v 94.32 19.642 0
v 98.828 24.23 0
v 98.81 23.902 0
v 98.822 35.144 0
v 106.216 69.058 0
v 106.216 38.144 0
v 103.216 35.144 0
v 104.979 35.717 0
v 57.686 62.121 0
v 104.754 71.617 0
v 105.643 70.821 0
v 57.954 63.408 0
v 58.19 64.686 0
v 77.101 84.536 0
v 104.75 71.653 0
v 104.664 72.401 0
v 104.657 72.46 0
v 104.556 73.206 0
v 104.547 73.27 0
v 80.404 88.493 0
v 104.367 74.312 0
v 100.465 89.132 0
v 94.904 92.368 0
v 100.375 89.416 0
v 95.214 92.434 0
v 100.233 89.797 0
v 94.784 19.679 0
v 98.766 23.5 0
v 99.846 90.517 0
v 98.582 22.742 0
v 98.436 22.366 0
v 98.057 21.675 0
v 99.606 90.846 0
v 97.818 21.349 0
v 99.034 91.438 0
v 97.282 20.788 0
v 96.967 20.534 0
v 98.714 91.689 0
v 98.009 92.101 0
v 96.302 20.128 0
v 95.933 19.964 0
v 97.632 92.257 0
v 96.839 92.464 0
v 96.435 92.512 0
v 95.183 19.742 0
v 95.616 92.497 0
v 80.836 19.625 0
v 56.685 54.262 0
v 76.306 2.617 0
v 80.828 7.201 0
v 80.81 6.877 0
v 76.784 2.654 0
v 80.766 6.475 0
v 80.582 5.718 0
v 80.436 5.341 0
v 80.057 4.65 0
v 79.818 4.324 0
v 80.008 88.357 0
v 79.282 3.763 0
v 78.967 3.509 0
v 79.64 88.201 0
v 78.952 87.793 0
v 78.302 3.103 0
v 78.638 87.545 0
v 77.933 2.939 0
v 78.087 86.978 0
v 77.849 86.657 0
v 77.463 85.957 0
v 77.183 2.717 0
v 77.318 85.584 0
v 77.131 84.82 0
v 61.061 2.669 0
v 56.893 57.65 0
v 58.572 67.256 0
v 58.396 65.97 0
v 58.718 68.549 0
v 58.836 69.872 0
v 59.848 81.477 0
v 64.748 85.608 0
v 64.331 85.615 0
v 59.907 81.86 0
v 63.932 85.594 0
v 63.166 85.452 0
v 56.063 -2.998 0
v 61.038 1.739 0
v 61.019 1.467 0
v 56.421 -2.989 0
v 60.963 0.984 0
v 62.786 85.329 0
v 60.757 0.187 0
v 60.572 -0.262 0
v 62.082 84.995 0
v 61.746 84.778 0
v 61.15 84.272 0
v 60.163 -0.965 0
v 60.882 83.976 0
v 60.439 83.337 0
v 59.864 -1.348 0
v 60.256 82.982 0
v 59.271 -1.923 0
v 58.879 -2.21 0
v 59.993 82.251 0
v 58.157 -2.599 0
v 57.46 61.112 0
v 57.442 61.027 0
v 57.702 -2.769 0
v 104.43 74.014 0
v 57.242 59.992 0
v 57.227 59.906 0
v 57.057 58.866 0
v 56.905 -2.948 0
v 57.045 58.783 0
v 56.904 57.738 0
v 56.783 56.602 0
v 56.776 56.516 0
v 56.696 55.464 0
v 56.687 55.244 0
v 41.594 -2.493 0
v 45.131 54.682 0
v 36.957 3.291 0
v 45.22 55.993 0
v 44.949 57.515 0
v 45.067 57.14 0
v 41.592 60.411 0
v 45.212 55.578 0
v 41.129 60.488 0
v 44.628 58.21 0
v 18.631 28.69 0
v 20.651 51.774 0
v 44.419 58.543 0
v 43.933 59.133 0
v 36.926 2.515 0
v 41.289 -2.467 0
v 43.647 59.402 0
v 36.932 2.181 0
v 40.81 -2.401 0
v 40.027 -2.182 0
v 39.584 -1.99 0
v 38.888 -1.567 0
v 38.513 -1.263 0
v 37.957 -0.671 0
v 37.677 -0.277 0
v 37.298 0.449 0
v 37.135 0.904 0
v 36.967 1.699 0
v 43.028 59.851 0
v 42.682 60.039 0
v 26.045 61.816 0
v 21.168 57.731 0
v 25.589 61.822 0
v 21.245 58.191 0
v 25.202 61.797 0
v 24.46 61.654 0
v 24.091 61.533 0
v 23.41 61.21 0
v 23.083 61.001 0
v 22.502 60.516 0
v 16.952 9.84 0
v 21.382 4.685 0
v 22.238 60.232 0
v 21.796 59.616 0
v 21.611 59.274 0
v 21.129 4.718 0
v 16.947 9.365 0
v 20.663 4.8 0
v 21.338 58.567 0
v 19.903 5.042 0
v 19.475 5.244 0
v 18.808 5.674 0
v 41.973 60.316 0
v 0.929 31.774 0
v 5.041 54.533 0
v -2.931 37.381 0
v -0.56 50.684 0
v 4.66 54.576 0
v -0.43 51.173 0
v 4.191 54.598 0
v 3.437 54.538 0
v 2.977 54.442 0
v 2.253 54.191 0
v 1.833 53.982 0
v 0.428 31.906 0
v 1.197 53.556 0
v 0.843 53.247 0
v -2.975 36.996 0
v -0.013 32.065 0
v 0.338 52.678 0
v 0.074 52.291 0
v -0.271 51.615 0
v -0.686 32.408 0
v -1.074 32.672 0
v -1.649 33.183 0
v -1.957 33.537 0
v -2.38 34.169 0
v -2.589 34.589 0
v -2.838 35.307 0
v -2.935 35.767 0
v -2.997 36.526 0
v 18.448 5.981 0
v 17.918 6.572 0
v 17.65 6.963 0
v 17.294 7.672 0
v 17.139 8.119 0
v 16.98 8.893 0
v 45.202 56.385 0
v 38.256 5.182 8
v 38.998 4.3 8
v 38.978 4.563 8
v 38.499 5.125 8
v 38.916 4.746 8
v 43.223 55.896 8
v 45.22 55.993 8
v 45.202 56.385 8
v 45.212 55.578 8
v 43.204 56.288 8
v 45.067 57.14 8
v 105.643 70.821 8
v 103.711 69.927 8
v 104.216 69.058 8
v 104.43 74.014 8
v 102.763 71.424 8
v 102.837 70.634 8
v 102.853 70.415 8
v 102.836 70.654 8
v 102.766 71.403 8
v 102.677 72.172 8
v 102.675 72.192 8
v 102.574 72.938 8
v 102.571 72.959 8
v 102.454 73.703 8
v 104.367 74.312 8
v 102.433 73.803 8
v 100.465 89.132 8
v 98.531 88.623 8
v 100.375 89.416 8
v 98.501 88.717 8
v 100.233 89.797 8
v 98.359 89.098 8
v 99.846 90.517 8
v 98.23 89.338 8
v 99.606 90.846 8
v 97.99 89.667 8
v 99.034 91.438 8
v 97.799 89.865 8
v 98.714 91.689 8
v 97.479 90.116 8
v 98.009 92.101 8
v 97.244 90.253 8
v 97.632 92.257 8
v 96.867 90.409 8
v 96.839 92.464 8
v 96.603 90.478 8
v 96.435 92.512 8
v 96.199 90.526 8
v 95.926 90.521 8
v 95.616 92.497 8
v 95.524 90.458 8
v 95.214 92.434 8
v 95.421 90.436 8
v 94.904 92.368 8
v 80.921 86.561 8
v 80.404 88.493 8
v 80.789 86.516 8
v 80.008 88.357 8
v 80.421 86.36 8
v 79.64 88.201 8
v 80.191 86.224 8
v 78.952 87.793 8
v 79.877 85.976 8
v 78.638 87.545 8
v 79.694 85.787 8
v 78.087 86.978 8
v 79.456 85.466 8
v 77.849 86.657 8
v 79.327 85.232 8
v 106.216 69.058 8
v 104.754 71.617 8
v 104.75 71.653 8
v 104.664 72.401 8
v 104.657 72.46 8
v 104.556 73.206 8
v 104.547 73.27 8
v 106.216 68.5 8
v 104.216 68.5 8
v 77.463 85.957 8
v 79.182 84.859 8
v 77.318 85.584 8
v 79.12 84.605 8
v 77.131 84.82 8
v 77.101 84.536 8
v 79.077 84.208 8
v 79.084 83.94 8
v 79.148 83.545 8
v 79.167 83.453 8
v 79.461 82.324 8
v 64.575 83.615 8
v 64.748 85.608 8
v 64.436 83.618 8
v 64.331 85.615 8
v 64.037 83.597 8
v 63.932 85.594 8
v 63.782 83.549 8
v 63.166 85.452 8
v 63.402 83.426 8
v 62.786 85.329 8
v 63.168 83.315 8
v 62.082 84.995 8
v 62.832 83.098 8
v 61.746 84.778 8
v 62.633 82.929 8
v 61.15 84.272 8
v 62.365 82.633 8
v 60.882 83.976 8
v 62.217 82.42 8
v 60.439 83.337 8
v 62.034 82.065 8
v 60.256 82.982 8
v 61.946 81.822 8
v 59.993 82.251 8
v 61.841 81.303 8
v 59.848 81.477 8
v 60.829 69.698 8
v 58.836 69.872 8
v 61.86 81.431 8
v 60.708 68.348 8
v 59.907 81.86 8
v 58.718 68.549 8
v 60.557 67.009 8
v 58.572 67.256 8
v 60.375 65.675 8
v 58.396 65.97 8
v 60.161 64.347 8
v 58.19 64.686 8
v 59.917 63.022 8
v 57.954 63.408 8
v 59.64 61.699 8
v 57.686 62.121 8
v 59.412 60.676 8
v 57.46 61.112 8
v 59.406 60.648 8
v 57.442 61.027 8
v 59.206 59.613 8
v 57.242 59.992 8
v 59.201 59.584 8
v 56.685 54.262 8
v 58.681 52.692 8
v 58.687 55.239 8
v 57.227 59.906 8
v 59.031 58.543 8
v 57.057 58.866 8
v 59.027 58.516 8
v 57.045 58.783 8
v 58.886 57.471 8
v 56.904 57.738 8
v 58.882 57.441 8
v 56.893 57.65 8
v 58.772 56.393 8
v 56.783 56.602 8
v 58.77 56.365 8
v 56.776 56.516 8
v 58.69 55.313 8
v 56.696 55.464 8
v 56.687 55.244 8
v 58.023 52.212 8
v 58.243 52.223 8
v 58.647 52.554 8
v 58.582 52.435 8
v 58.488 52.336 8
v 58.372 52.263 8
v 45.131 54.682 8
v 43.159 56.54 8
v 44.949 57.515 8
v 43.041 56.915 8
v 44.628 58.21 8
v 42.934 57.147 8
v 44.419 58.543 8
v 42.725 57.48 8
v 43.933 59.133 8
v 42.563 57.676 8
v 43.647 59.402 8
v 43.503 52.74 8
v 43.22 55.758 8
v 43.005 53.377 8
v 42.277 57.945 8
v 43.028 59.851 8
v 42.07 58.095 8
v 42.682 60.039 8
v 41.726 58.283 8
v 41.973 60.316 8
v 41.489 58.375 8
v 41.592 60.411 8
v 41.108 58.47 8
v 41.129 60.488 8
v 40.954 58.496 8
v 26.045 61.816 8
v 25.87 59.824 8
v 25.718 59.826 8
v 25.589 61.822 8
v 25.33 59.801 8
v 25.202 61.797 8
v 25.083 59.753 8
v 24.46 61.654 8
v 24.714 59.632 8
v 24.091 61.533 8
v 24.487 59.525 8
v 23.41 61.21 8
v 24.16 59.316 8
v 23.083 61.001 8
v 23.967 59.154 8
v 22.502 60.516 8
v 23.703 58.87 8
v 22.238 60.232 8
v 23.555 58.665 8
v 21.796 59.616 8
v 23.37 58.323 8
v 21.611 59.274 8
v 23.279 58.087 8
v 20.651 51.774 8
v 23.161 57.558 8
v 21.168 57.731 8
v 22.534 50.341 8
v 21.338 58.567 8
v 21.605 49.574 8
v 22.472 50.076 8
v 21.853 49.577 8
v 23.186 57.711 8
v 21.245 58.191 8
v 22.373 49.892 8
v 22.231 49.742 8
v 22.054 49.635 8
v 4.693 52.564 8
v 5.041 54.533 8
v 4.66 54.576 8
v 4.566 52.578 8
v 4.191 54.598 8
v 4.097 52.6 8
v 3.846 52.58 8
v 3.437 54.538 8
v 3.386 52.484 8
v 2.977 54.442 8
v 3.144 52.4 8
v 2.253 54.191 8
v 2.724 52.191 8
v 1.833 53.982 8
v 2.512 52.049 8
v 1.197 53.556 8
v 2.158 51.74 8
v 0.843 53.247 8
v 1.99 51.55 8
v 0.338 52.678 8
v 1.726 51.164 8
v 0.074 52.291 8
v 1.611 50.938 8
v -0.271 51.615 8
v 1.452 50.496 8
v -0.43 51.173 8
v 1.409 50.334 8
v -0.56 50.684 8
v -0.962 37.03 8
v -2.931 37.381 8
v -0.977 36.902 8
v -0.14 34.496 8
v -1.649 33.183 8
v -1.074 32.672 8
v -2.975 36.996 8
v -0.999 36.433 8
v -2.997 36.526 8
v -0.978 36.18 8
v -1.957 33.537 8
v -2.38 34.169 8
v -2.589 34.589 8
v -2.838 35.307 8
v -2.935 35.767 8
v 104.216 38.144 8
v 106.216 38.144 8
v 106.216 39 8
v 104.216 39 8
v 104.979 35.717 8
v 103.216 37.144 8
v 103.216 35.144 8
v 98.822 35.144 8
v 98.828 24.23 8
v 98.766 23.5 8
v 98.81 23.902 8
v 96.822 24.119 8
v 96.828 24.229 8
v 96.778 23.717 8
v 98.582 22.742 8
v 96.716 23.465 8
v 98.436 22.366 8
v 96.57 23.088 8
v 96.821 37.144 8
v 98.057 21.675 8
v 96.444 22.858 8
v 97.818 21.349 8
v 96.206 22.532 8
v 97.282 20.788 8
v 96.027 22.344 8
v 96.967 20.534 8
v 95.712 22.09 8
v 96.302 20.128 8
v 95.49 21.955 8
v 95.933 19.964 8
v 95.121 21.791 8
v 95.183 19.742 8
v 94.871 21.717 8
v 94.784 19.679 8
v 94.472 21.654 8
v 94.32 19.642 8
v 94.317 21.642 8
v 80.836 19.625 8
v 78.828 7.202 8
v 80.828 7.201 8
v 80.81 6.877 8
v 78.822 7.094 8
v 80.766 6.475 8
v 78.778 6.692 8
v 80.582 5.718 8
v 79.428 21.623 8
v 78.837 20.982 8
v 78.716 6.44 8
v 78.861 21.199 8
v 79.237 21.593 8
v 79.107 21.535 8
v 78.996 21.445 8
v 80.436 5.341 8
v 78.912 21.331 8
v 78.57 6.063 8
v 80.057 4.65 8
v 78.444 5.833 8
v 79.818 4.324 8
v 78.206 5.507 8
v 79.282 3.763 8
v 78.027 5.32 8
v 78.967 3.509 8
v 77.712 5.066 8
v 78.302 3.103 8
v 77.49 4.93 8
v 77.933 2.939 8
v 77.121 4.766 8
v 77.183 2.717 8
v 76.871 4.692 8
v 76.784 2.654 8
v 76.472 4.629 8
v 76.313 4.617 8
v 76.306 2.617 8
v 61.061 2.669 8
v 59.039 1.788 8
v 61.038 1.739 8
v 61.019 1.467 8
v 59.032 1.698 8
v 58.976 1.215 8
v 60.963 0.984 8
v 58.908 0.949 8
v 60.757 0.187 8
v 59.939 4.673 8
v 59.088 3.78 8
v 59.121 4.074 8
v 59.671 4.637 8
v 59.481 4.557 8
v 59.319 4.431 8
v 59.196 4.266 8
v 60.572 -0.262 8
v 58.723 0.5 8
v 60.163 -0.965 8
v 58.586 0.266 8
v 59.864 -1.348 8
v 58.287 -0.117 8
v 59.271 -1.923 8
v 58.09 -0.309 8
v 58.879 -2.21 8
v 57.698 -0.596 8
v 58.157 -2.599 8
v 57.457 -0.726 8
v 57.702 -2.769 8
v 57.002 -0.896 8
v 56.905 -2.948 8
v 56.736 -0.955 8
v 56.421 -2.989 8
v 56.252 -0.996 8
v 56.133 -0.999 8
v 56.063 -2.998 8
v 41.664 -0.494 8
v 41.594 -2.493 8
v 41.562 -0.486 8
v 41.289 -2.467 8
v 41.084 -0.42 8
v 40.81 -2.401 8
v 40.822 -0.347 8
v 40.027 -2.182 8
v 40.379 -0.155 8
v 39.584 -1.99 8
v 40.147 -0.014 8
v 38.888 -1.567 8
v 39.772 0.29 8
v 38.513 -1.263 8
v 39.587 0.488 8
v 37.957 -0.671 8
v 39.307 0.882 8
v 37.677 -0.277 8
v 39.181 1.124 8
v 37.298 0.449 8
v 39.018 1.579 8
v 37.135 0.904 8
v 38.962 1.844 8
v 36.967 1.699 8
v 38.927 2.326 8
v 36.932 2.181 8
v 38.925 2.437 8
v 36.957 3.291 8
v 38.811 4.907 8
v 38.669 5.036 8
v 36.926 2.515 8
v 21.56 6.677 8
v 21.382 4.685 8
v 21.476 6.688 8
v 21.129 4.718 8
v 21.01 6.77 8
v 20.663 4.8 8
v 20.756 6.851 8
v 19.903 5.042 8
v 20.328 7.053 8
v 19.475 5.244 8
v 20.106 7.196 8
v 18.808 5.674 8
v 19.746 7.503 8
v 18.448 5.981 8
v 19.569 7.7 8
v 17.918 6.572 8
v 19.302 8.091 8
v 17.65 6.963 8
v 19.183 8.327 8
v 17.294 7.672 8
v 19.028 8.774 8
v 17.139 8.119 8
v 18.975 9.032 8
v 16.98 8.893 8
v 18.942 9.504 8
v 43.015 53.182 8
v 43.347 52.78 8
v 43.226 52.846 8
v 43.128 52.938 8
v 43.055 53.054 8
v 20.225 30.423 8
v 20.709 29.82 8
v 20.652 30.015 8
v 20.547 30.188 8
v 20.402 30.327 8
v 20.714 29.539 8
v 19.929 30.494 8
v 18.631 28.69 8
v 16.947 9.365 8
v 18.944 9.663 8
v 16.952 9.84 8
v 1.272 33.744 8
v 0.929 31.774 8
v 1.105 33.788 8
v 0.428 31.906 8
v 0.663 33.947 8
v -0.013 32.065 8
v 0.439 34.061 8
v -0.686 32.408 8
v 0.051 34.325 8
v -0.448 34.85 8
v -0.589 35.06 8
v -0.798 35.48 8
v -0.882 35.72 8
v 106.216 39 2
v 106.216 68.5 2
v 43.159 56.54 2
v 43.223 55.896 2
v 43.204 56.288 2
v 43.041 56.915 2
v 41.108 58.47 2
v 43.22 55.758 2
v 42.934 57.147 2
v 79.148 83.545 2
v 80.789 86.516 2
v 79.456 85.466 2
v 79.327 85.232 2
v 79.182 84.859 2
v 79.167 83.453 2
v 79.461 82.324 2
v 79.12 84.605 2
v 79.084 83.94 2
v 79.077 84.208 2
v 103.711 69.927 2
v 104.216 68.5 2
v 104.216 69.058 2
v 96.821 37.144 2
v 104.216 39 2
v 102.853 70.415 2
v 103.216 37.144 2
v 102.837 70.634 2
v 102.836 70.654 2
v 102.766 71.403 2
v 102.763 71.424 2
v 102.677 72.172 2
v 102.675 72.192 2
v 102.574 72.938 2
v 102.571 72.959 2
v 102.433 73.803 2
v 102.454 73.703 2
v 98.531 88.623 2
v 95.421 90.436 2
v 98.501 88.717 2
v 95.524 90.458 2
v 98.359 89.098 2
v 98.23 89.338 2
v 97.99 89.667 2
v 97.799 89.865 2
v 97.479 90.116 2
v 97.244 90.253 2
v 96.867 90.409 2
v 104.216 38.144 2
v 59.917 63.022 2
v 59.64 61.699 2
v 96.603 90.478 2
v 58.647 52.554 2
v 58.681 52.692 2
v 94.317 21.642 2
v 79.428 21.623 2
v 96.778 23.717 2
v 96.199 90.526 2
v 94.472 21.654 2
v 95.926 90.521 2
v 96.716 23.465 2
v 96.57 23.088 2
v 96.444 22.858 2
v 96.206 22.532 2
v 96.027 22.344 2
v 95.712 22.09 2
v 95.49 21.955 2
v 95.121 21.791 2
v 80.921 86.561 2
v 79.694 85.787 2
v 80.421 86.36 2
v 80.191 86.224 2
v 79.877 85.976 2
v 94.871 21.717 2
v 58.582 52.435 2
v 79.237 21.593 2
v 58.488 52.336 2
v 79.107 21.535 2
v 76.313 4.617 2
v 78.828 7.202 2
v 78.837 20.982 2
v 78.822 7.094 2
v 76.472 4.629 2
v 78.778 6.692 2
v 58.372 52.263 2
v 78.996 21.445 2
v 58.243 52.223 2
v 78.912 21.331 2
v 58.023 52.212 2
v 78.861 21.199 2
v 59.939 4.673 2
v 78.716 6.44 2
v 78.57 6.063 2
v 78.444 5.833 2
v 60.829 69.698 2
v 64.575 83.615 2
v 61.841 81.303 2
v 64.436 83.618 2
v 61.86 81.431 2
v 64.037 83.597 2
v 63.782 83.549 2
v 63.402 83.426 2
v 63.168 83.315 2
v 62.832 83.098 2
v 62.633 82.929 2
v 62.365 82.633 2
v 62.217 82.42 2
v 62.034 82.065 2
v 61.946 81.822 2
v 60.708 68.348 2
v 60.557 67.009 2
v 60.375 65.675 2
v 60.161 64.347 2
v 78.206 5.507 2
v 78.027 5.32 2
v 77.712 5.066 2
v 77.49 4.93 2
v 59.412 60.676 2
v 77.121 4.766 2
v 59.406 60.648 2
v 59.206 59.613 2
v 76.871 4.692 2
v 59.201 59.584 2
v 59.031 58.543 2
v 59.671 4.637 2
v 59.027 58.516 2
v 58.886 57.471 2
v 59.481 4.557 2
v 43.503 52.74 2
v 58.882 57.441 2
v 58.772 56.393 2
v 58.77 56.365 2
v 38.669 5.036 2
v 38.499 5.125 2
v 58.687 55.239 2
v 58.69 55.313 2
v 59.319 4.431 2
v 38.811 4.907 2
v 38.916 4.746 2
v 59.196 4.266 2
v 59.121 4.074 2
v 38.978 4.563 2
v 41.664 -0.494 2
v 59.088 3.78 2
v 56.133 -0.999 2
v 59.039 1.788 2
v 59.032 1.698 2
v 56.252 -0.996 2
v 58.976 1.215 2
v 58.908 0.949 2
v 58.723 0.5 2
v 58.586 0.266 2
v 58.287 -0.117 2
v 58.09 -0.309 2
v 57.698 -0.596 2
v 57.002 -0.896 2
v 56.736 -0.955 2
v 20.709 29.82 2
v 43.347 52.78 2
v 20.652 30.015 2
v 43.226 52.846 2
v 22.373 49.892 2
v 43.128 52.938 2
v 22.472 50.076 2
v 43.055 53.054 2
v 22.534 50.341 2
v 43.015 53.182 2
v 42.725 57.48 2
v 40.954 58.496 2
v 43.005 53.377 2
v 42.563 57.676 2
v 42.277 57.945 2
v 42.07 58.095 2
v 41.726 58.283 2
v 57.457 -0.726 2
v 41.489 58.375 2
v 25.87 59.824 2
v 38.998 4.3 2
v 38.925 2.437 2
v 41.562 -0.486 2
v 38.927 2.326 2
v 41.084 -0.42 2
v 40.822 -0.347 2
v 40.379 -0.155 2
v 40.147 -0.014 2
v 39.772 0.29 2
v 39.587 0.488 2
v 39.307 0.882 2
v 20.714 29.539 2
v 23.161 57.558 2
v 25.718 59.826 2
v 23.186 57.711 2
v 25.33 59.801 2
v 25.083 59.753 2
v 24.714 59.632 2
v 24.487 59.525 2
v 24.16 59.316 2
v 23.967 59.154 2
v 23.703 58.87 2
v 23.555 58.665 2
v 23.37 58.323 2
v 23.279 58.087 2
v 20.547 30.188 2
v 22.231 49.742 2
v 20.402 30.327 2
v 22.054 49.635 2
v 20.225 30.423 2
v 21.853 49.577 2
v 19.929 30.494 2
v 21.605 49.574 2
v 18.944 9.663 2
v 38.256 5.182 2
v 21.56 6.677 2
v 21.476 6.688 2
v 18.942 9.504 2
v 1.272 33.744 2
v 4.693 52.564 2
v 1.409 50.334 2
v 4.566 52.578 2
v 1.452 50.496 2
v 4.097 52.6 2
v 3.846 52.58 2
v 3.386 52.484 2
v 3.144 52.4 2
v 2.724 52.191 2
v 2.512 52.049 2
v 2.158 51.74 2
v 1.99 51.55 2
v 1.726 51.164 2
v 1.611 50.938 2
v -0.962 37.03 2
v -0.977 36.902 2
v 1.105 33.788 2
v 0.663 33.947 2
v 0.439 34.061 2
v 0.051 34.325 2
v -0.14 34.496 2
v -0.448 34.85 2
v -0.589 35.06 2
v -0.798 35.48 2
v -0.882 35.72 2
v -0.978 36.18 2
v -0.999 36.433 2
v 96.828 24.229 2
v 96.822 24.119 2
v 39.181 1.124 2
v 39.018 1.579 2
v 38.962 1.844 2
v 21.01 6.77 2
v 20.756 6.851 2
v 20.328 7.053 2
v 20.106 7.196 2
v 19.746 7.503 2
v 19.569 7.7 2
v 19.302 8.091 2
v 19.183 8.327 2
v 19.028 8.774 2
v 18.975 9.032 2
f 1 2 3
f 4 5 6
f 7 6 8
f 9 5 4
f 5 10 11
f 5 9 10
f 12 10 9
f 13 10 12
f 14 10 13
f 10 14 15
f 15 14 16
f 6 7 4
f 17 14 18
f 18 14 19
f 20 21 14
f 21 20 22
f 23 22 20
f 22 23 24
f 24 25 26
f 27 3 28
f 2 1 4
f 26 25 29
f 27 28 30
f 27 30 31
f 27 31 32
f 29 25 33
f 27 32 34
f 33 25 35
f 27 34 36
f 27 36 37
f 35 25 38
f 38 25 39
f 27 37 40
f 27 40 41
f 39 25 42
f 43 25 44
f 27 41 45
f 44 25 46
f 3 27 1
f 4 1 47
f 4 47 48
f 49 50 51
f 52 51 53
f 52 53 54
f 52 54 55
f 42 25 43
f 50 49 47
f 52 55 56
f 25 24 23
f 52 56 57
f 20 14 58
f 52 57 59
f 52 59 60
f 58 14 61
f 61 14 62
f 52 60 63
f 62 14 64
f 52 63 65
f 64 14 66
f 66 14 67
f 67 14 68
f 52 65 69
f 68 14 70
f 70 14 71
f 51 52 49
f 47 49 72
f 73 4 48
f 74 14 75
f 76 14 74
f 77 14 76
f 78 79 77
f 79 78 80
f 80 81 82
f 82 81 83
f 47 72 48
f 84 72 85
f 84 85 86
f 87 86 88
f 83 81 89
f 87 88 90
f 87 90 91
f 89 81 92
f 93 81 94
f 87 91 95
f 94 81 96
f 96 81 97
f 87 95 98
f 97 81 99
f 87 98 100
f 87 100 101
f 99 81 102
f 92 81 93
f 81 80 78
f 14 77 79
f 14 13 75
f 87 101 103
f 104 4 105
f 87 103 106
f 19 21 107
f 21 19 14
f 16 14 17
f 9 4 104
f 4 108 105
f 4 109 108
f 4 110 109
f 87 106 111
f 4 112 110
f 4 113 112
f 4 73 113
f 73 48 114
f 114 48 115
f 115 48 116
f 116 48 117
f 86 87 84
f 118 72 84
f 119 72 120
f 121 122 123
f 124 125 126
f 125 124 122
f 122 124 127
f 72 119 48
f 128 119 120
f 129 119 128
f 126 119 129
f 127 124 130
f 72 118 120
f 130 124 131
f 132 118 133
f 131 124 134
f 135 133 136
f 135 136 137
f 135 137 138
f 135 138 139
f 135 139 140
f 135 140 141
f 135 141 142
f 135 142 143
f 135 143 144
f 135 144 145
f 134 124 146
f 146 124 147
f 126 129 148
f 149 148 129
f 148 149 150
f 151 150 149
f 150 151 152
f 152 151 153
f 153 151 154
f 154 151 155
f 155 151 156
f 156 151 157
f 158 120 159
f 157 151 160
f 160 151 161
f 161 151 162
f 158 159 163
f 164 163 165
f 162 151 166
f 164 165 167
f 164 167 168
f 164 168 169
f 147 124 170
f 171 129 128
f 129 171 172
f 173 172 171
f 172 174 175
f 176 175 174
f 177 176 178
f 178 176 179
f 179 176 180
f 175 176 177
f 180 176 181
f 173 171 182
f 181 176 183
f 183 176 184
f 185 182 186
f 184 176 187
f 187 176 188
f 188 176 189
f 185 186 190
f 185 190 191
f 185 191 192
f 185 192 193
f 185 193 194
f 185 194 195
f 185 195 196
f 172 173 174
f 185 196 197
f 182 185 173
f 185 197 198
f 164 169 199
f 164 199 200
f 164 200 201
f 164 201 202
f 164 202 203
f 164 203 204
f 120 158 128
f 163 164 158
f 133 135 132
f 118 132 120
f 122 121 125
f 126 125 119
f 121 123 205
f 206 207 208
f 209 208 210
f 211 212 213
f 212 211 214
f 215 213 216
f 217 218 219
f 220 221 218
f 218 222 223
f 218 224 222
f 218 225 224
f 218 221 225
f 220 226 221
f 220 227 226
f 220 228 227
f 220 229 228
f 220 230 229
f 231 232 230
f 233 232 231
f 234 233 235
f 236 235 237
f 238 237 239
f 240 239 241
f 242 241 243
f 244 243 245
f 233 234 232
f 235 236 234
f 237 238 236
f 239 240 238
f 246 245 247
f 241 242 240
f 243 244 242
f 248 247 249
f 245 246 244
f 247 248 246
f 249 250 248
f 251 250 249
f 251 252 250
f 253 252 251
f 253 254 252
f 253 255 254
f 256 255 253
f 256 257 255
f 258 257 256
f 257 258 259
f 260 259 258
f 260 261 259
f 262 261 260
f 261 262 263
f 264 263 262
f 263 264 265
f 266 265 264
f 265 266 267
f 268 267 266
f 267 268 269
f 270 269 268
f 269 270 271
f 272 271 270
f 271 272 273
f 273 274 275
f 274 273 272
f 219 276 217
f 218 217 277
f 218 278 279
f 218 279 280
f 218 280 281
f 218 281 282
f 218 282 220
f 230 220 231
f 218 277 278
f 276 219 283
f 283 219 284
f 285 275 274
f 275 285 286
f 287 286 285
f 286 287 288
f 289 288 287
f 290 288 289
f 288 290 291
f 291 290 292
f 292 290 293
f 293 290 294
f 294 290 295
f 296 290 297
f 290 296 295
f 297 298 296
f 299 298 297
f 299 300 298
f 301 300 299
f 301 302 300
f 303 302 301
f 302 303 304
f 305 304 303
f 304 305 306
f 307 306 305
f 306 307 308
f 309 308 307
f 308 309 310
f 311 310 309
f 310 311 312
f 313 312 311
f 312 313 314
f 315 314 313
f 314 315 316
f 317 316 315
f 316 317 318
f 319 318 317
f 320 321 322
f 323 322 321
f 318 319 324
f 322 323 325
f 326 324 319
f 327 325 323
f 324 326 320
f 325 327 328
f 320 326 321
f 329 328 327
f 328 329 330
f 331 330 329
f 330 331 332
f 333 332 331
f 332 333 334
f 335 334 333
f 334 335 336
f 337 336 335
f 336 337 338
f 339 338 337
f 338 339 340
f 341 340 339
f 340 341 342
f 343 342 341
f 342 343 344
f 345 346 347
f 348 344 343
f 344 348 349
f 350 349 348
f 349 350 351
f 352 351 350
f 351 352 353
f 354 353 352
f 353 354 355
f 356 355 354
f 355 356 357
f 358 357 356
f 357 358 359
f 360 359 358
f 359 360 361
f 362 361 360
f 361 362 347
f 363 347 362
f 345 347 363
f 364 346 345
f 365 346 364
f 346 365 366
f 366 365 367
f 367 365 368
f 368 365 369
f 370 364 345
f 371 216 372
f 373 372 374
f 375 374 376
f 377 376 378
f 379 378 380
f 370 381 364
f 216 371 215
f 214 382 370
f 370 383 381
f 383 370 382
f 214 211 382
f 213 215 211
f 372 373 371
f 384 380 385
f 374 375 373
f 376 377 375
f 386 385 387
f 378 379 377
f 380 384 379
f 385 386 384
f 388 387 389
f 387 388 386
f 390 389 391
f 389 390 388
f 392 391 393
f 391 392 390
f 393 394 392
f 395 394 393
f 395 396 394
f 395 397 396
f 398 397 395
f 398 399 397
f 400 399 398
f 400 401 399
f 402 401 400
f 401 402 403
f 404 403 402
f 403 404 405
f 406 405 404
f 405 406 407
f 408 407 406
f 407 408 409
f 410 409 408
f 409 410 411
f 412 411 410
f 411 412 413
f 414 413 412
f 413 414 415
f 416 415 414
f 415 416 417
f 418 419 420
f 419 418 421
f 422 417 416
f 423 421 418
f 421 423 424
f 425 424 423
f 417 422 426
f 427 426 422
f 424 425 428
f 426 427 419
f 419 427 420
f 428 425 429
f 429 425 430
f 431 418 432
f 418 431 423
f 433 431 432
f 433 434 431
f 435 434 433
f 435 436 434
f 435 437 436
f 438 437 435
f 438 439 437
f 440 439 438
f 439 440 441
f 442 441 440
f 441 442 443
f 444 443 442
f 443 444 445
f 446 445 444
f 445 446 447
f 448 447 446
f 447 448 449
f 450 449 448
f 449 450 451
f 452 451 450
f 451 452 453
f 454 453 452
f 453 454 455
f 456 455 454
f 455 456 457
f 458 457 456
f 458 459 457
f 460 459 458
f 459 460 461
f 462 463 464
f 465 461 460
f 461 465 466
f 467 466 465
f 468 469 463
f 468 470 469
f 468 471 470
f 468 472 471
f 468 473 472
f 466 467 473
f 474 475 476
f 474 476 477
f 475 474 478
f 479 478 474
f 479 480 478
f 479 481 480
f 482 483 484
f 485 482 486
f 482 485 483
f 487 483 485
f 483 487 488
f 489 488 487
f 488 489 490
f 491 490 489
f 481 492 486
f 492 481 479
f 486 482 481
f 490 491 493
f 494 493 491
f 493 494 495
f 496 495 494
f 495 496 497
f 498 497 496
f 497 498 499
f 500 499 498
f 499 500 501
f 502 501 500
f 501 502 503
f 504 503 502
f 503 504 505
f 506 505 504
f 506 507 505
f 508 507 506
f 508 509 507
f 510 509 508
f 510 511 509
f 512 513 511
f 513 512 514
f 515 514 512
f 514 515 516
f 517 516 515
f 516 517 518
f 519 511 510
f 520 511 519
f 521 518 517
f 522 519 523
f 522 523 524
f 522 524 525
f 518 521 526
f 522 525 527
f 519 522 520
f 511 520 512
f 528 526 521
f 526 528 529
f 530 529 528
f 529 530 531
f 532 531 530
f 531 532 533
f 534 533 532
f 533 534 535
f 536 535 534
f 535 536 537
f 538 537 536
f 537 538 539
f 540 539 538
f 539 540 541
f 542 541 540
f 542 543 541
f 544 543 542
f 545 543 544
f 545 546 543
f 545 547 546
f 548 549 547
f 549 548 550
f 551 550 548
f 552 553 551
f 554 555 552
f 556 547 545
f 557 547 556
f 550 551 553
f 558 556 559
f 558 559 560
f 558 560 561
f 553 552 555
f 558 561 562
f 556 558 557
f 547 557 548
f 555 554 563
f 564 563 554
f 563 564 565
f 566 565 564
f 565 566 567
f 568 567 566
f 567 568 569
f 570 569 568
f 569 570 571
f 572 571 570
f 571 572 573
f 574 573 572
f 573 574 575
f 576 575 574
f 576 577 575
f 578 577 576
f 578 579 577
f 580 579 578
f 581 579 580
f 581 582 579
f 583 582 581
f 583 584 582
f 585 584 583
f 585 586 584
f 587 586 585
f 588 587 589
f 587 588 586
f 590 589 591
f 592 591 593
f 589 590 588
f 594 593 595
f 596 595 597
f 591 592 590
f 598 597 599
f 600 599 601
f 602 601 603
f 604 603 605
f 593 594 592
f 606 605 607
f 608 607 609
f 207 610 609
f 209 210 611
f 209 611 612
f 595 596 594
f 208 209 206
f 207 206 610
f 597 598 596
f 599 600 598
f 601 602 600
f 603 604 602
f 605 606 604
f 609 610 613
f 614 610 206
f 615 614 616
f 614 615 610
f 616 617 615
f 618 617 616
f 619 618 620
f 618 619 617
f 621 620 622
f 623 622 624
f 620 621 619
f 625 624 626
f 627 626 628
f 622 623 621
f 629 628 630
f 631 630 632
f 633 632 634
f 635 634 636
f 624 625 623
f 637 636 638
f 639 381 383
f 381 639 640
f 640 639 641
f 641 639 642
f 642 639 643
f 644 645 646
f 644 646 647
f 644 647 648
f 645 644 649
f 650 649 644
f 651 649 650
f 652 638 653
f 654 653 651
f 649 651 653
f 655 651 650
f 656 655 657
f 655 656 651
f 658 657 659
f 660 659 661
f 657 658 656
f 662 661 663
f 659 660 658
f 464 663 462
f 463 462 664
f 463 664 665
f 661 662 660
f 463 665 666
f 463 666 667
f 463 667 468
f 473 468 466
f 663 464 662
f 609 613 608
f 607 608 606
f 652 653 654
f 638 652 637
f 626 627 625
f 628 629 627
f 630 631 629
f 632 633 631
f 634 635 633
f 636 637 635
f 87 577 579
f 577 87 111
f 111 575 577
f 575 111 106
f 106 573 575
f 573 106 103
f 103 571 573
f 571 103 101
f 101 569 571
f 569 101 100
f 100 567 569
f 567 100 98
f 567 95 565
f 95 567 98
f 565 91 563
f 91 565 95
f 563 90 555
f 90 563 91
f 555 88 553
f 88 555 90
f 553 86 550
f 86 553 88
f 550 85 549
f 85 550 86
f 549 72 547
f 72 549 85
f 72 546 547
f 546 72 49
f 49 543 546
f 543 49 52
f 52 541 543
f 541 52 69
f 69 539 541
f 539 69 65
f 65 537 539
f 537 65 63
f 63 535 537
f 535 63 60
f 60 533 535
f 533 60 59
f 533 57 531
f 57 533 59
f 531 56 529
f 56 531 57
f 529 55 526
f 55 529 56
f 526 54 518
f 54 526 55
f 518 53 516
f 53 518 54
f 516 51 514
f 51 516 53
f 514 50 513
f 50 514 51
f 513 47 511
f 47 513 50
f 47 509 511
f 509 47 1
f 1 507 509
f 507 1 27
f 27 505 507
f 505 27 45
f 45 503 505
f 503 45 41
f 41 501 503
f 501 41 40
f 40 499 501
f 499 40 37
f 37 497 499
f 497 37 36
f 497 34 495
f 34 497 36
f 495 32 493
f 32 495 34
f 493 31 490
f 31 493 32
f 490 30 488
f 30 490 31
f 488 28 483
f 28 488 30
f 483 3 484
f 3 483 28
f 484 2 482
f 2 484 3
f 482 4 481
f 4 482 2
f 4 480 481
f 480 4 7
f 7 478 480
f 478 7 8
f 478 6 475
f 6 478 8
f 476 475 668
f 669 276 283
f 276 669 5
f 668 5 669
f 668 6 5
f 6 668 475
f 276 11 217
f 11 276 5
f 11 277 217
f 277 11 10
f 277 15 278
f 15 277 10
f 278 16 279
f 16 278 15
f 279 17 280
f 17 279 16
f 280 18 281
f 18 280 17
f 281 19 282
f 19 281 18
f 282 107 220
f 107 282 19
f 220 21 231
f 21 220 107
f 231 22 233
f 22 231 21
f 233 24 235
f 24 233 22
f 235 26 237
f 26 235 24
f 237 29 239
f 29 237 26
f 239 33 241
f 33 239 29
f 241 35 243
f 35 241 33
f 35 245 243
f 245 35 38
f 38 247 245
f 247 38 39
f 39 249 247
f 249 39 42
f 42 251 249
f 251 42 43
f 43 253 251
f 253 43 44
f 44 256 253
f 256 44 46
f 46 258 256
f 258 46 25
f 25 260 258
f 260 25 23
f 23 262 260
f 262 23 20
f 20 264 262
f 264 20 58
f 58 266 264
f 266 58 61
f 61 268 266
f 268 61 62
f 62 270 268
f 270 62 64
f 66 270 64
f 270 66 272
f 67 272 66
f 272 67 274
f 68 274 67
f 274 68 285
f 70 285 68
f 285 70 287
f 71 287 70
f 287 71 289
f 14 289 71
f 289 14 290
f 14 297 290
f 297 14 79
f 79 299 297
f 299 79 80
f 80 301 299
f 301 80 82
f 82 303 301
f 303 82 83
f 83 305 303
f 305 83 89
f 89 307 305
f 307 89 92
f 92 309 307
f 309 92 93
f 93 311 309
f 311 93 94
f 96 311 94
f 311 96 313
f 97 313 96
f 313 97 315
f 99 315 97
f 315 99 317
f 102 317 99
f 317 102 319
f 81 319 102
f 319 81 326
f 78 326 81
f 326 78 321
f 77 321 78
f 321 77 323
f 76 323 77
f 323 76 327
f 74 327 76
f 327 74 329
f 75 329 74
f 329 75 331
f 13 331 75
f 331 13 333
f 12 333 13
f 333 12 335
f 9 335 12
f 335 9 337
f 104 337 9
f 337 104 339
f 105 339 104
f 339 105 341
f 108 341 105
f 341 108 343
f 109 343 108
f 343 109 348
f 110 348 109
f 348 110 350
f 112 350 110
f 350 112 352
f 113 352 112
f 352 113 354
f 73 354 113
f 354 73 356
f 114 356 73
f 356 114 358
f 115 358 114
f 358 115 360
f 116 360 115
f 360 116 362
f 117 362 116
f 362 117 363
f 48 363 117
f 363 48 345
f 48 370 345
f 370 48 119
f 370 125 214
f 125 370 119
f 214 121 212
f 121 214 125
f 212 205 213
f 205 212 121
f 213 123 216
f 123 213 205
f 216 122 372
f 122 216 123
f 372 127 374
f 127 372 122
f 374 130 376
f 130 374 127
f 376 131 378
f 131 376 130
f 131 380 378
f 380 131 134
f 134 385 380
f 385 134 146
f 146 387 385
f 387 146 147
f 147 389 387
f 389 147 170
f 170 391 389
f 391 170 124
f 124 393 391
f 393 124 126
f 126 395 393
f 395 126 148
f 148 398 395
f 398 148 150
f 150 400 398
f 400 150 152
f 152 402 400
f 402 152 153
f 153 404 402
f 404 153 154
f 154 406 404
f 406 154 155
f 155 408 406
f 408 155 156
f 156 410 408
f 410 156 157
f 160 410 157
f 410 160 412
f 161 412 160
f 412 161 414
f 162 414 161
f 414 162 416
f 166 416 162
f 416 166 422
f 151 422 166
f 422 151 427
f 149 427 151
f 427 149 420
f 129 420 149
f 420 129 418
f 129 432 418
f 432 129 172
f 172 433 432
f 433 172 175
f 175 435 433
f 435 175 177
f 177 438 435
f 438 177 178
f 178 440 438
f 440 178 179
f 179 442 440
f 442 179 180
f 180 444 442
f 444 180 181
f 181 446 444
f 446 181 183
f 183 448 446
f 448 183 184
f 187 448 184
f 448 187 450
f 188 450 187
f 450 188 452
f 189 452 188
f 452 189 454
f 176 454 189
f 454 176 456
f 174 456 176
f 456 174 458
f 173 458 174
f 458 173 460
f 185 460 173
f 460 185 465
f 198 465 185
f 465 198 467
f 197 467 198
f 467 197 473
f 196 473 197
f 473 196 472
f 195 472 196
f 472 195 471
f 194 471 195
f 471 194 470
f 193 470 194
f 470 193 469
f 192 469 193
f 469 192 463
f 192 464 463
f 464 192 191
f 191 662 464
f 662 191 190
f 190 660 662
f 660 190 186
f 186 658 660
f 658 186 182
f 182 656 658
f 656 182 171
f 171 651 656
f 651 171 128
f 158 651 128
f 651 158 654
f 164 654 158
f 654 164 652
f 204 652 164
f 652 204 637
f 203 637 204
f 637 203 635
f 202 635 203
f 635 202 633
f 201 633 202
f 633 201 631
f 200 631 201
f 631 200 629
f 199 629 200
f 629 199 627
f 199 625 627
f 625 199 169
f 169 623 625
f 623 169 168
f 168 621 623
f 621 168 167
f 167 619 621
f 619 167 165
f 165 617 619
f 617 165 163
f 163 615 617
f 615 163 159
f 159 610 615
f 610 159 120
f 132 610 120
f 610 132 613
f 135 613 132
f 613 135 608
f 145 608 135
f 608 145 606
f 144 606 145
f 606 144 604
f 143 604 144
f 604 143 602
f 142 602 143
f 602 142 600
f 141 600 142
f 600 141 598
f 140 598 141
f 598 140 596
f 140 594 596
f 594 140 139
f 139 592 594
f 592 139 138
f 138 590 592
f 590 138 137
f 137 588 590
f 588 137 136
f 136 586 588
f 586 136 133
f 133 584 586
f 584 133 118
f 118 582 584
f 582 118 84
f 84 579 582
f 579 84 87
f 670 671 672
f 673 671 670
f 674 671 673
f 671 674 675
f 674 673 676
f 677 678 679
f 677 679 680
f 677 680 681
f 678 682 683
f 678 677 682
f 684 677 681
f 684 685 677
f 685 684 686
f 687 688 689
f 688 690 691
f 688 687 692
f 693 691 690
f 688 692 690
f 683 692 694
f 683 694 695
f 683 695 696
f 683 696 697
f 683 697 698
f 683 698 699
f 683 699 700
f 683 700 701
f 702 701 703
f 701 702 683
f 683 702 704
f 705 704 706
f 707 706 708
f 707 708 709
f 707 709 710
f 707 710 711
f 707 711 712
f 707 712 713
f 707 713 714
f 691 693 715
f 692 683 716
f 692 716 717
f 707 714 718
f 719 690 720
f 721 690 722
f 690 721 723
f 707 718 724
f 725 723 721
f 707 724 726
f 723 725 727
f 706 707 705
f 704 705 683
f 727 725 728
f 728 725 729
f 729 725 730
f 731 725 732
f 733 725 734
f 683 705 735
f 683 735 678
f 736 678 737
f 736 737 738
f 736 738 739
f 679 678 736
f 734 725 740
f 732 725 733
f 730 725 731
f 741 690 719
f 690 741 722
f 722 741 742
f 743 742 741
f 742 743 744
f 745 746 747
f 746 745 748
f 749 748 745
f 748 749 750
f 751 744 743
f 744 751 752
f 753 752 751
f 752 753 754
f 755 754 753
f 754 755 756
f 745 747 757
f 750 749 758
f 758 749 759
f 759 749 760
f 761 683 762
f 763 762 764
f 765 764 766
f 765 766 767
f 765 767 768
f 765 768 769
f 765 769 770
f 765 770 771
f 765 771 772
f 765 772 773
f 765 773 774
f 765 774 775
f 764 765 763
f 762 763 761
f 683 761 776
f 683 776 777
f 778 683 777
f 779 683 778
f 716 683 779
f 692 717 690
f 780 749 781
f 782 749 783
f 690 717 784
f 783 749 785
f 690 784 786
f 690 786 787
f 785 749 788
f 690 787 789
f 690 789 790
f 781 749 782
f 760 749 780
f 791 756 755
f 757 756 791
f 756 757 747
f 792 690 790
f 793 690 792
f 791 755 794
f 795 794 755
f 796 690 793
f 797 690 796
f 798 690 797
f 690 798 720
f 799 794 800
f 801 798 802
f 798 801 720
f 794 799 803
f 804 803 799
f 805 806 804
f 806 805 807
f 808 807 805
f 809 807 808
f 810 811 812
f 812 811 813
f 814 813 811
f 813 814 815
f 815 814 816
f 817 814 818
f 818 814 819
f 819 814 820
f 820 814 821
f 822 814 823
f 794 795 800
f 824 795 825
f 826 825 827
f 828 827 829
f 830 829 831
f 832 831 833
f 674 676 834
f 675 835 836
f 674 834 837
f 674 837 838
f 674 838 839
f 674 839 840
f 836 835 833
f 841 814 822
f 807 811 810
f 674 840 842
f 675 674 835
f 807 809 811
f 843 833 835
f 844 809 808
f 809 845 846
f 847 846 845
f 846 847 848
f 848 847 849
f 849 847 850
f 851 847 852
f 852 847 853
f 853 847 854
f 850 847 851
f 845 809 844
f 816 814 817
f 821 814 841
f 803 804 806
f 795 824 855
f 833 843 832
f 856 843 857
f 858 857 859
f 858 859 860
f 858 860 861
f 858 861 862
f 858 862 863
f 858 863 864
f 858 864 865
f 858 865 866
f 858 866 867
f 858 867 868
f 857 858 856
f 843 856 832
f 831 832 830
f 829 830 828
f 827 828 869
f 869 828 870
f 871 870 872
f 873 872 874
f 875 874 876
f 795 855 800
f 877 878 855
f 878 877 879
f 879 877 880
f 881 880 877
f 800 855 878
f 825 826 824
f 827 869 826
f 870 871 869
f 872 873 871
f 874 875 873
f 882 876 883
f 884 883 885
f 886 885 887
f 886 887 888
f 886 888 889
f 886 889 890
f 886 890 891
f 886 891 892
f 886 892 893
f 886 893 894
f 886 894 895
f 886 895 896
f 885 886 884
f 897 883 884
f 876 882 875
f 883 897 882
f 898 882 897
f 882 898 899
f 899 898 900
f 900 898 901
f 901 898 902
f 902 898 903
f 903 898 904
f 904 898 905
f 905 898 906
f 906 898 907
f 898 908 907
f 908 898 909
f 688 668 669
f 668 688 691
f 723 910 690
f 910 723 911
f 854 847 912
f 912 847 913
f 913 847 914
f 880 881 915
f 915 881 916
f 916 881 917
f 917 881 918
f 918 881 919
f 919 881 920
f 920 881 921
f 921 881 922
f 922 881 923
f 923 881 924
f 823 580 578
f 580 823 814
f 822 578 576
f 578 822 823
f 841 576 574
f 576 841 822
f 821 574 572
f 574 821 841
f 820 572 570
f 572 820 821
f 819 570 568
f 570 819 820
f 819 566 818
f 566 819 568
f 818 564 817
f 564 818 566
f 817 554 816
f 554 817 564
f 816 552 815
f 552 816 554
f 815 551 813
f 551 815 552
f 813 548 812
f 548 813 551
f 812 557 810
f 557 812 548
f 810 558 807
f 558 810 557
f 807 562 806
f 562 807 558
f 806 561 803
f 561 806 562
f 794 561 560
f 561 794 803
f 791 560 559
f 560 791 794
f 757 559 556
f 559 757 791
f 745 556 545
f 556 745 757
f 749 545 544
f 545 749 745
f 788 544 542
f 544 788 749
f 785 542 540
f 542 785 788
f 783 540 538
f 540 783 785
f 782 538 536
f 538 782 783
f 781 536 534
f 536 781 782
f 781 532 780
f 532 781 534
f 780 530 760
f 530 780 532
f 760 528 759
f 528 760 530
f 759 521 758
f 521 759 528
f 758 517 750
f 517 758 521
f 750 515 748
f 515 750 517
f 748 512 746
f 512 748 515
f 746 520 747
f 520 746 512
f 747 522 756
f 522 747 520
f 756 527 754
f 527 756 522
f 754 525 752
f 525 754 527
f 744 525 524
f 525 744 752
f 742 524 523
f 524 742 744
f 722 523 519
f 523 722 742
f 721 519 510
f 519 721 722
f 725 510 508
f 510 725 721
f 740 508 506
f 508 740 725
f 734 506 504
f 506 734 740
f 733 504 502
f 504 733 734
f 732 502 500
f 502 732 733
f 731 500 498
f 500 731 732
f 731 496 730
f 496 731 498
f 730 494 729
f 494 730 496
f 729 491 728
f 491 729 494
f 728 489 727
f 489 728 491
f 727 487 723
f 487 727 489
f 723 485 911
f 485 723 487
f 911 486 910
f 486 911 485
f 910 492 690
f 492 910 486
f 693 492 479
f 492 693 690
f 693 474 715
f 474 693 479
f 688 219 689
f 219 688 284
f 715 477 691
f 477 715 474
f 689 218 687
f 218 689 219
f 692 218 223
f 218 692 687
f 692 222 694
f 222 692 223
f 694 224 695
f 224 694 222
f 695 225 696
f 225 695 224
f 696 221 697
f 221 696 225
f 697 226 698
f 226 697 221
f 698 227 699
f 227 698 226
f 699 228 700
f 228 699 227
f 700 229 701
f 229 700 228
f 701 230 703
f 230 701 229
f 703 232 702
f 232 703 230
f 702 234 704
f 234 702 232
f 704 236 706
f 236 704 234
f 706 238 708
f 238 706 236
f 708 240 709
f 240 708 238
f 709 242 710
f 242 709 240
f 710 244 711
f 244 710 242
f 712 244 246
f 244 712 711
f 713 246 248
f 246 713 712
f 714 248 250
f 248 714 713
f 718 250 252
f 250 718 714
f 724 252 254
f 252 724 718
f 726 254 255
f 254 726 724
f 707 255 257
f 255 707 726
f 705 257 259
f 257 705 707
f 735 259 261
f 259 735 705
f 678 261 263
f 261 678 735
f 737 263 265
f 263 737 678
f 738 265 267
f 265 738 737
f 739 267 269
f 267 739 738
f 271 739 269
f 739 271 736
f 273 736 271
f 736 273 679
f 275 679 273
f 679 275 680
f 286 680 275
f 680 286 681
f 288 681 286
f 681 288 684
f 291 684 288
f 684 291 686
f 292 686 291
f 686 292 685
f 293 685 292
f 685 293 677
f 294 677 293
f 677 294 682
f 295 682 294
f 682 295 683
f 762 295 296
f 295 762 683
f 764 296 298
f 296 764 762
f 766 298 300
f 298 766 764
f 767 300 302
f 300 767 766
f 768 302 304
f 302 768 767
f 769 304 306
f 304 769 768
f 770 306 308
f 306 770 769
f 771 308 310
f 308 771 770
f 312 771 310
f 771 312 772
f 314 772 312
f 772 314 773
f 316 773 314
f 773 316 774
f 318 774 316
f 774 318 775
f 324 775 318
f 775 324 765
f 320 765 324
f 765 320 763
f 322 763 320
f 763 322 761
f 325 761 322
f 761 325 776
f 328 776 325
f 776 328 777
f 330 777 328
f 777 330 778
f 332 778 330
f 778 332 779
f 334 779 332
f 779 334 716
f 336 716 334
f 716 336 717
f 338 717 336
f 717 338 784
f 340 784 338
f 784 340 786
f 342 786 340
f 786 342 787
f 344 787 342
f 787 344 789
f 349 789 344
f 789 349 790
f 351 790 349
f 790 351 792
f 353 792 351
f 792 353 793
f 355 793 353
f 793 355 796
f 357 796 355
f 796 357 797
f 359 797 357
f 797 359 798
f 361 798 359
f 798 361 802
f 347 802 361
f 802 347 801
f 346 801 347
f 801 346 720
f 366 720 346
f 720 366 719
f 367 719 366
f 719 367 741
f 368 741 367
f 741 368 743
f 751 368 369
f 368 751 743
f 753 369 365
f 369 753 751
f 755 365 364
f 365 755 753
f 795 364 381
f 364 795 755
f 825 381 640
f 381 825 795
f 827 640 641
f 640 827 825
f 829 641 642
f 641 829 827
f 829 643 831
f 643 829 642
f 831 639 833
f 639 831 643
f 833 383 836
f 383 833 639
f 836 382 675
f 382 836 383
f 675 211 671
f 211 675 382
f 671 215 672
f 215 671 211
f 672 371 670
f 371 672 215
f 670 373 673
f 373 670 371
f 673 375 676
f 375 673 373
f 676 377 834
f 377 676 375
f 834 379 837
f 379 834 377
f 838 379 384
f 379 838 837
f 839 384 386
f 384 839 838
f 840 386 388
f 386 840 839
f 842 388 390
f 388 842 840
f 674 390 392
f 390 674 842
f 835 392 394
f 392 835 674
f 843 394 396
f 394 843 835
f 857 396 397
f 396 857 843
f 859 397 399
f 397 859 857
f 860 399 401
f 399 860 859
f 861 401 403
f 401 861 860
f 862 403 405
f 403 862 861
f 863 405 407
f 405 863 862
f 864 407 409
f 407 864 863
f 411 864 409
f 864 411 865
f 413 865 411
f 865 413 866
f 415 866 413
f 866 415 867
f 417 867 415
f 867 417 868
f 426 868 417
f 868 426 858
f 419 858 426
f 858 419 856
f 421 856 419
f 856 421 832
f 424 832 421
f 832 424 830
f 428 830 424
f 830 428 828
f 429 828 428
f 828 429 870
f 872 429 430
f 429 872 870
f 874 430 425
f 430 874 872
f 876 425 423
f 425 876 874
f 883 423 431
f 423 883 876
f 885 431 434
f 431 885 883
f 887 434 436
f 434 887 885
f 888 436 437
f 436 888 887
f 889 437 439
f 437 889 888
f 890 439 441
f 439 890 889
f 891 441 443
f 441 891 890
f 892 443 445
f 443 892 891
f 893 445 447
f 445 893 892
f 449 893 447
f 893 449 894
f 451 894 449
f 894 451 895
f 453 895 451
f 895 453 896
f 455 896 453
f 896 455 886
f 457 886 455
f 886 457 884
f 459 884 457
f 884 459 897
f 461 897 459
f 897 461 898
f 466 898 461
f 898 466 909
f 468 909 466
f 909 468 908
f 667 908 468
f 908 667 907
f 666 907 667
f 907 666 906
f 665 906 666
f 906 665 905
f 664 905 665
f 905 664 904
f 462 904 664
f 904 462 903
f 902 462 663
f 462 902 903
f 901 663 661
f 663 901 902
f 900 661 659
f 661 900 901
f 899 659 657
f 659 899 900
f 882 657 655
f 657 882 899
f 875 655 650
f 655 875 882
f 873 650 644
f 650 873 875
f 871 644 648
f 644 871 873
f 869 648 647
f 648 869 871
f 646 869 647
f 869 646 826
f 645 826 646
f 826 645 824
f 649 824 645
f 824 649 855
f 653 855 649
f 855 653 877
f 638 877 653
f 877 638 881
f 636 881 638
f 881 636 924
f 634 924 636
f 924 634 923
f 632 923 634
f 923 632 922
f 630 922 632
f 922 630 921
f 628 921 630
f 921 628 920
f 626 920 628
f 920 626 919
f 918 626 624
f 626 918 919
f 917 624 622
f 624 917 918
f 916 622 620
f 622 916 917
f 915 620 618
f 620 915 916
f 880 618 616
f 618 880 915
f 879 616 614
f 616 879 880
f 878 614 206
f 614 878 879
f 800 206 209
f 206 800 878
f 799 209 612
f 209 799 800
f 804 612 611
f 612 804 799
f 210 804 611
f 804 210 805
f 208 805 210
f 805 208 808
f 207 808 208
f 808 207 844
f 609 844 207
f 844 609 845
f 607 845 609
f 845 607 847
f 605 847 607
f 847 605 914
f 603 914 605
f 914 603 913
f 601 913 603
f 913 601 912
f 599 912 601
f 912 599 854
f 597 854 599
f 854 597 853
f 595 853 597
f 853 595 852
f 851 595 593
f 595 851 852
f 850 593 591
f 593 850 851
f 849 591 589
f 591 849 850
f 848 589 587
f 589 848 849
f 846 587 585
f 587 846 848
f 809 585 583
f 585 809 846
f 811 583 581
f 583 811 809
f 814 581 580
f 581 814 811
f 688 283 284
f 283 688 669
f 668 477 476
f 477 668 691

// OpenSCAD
// Smallcat Split Keyboard Case - Right Half
// Tray-style case design
// PCB outline extracted from KiCad (mirrored from left)

// Parameters
wall_thickness = 2;        // Wall thickness in mm
case_depth = 8;            // Total case depth in mm
pcb_thickness = 1.6;       // PCB thickness in mm
pcb_clearance = 1;         // Clearance around PCB in mm
bottom_thickness = 2;      // Bottom plate thickness in mm

// Connector edge cutout parameters (clears entire edge for USB + TRRS)
connector_cutout_start = 39;   // Y start position
connector_cutout_end = 68.5;     // Y end position

// PCB outline points (right half - mirrored from left)
pcb_outline = [
    [0.022, 36.855],
    [0.000, 36.386],
    [0.097, 35.926],
    [0.306, 35.506],
    [0.614, 35.152],
    [1.002, 34.888],
    [1.444, 34.729],
    [20.132, 31.474],
    [20.586, 31.365],
    [20.997, 31.142],
    [21.334, 30.819],
    [21.576, 30.420],
    [21.706, 29.971],
    [21.715, 29.504],
    [19.940, 9.574],
    [19.973, 9.102],
    [20.128, 8.655],
    [20.395, 8.264],
    [20.755, 7.957],
    [21.183, 7.755],
    [21.649, 7.673],
    [38.416, 6.172],
    [38.851, 6.070],
    [39.247, 5.862],
    [39.578, 5.561],
    [39.823, 5.187],
    [39.966, 4.763],
    [39.999, 4.317],
    [39.924, 2.398],
    [39.959, 1.916],
    [40.122, 1.461],
    [40.402, 1.067],
    [40.777, 0.763],
    [41.220, 0.571],
    [41.699, 0.505],
    [56.168, 0.000],
    [56.652, 0.041],
    [57.107, 0.211],
    [57.499, 0.498],
    [57.798, 0.881],
    [57.983, 1.330],
    [58.039, 1.813],
    [58.089, 3.848],
    [58.142, 4.318],
    [58.315, 4.757],
    [58.598, 5.136],
    [58.970, 5.427],
    [59.406, 5.610],
    [59.874, 5.673],
    [76.316, 5.617],
    [76.715, 5.680],
    [77.084, 5.844],
    [77.399, 6.098],
    [77.638, 6.424],
    [77.784, 6.801],
    [77.828, 7.203],
    [77.837, 21.037],
    [77.881, 21.439],
    [78.028, 21.816],
    [78.266, 22.142],
    [78.581, 22.395],
    [78.950, 22.560],
    [79.349, 22.623],
    [94.316, 22.642],
    [94.715, 22.705],
    [95.084, 22.869],
    [95.399, 23.123],
    [95.638, 23.449],
    [95.784, 23.826],
    [95.828, 24.228],
    [95.820, 38.144],
    [103.216, 38.144],
    [103.216, 69.058],
    [101.895, 69.810],
    [101.840, 70.561],
    [101.770, 71.310],
    [101.684, 72.058],
    [101.583, 72.804],
    [101.466, 73.548],
    [97.564, 88.368],
    [97.422, 88.749],
    [97.182, 89.078],
    [96.862, 89.329],
    [96.485, 89.485],
    [96.081, 89.533],
    [95.679, 89.470],
    [81.179, 85.595],
    [80.811, 85.439],
    [80.497, 85.191],
    [80.259, 84.870],
    [80.114, 84.497],
    [80.071, 84.100],
    [80.135, 83.705],
    [80.785, 81.205],
    [64.489, 82.619],
    [64.090, 82.598],
    [63.710, 82.475],
    [63.374, 82.258],
    [63.106, 81.962],
    [62.923, 81.607],
    [62.837, 81.216],
    [61.825, 69.611],
    [61.703, 68.247],
    [61.549, 66.885],
    [61.364, 65.528],
    [61.146, 64.176],
    [60.898, 62.829],
    [60.618, 61.488],
    [60.388, 60.458],
    [60.188, 59.423],
    [60.018, 58.382],
    [59.877, 57.337],
    [59.767, 56.289],
    [59.687, 55.237],
    [59.681, 52.568],
    [59.586, 52.187],
    [59.397, 51.842],
    [59.128, 51.557],
    [58.795, 51.348],
    [58.421, 51.230],
    [58.029, 51.211],
    [43.361, 51.745],
    [42.980, 51.841],
    [42.635, 52.029],
    [42.349, 52.298],
    [42.140, 52.631],
    [42.022, 53.005],
    [42.003, 53.398],
    [42.224, 55.848],
    [42.205, 56.240],
    [42.087, 56.615],
    [41.878, 56.948],
    [41.592, 57.217],
    [41.247, 57.405],
    [40.866, 57.500],
    [25.782, 58.828],
    [25.395, 58.803],
    [25.026, 58.682],
    [24.699, 58.473],
    [24.435, 58.189],
    [24.250, 57.847],
    [24.157, 57.471],
    [23.524, 50.183],
    [23.416, 49.720],
    [23.191, 49.301],
    [22.864, 48.956],
    [22.457, 48.710],
    [22.000, 48.579],
    [21.524, 48.573],
    [4.519, 51.579],
    [4.050, 51.601],
    [3.590, 51.505],
    [3.170, 51.296],
    [2.816, 50.987],
    [2.552, 50.600],
    [2.393, 50.158]
];

// Get max X for right/inner edge position
pcb_max_x = 103.216;

// Connector edge cutout module (clears entire inner edge section for USB + TRRS)
module connector_cutout() {
    cutout_length = connector_cutout_end - connector_cutout_start;
    translate([pcb_max_x - 5, connector_cutout_start, bottom_thickness])
        cube([wall_thickness + 10, cutout_length, case_depth]);
}

// Main case module
module case_bottom() {
    difference() {
        // Outer shell
        linear_extrude(height=case_depth)
            offset(r=wall_thickness + pcb_clearance)
                polygon(pcb_outline);

        // Inner cavity for PCB
        translate([0, 0, bottom_thickness])
            linear_extrude(height=case_depth)
                offset(r=pcb_clearance)
                    polygon(pcb_outline);

        // Connector edge cutout (USB-C + TRRS area)
        connector_cutout();
    }
}

// Render the case
case_bottom();
